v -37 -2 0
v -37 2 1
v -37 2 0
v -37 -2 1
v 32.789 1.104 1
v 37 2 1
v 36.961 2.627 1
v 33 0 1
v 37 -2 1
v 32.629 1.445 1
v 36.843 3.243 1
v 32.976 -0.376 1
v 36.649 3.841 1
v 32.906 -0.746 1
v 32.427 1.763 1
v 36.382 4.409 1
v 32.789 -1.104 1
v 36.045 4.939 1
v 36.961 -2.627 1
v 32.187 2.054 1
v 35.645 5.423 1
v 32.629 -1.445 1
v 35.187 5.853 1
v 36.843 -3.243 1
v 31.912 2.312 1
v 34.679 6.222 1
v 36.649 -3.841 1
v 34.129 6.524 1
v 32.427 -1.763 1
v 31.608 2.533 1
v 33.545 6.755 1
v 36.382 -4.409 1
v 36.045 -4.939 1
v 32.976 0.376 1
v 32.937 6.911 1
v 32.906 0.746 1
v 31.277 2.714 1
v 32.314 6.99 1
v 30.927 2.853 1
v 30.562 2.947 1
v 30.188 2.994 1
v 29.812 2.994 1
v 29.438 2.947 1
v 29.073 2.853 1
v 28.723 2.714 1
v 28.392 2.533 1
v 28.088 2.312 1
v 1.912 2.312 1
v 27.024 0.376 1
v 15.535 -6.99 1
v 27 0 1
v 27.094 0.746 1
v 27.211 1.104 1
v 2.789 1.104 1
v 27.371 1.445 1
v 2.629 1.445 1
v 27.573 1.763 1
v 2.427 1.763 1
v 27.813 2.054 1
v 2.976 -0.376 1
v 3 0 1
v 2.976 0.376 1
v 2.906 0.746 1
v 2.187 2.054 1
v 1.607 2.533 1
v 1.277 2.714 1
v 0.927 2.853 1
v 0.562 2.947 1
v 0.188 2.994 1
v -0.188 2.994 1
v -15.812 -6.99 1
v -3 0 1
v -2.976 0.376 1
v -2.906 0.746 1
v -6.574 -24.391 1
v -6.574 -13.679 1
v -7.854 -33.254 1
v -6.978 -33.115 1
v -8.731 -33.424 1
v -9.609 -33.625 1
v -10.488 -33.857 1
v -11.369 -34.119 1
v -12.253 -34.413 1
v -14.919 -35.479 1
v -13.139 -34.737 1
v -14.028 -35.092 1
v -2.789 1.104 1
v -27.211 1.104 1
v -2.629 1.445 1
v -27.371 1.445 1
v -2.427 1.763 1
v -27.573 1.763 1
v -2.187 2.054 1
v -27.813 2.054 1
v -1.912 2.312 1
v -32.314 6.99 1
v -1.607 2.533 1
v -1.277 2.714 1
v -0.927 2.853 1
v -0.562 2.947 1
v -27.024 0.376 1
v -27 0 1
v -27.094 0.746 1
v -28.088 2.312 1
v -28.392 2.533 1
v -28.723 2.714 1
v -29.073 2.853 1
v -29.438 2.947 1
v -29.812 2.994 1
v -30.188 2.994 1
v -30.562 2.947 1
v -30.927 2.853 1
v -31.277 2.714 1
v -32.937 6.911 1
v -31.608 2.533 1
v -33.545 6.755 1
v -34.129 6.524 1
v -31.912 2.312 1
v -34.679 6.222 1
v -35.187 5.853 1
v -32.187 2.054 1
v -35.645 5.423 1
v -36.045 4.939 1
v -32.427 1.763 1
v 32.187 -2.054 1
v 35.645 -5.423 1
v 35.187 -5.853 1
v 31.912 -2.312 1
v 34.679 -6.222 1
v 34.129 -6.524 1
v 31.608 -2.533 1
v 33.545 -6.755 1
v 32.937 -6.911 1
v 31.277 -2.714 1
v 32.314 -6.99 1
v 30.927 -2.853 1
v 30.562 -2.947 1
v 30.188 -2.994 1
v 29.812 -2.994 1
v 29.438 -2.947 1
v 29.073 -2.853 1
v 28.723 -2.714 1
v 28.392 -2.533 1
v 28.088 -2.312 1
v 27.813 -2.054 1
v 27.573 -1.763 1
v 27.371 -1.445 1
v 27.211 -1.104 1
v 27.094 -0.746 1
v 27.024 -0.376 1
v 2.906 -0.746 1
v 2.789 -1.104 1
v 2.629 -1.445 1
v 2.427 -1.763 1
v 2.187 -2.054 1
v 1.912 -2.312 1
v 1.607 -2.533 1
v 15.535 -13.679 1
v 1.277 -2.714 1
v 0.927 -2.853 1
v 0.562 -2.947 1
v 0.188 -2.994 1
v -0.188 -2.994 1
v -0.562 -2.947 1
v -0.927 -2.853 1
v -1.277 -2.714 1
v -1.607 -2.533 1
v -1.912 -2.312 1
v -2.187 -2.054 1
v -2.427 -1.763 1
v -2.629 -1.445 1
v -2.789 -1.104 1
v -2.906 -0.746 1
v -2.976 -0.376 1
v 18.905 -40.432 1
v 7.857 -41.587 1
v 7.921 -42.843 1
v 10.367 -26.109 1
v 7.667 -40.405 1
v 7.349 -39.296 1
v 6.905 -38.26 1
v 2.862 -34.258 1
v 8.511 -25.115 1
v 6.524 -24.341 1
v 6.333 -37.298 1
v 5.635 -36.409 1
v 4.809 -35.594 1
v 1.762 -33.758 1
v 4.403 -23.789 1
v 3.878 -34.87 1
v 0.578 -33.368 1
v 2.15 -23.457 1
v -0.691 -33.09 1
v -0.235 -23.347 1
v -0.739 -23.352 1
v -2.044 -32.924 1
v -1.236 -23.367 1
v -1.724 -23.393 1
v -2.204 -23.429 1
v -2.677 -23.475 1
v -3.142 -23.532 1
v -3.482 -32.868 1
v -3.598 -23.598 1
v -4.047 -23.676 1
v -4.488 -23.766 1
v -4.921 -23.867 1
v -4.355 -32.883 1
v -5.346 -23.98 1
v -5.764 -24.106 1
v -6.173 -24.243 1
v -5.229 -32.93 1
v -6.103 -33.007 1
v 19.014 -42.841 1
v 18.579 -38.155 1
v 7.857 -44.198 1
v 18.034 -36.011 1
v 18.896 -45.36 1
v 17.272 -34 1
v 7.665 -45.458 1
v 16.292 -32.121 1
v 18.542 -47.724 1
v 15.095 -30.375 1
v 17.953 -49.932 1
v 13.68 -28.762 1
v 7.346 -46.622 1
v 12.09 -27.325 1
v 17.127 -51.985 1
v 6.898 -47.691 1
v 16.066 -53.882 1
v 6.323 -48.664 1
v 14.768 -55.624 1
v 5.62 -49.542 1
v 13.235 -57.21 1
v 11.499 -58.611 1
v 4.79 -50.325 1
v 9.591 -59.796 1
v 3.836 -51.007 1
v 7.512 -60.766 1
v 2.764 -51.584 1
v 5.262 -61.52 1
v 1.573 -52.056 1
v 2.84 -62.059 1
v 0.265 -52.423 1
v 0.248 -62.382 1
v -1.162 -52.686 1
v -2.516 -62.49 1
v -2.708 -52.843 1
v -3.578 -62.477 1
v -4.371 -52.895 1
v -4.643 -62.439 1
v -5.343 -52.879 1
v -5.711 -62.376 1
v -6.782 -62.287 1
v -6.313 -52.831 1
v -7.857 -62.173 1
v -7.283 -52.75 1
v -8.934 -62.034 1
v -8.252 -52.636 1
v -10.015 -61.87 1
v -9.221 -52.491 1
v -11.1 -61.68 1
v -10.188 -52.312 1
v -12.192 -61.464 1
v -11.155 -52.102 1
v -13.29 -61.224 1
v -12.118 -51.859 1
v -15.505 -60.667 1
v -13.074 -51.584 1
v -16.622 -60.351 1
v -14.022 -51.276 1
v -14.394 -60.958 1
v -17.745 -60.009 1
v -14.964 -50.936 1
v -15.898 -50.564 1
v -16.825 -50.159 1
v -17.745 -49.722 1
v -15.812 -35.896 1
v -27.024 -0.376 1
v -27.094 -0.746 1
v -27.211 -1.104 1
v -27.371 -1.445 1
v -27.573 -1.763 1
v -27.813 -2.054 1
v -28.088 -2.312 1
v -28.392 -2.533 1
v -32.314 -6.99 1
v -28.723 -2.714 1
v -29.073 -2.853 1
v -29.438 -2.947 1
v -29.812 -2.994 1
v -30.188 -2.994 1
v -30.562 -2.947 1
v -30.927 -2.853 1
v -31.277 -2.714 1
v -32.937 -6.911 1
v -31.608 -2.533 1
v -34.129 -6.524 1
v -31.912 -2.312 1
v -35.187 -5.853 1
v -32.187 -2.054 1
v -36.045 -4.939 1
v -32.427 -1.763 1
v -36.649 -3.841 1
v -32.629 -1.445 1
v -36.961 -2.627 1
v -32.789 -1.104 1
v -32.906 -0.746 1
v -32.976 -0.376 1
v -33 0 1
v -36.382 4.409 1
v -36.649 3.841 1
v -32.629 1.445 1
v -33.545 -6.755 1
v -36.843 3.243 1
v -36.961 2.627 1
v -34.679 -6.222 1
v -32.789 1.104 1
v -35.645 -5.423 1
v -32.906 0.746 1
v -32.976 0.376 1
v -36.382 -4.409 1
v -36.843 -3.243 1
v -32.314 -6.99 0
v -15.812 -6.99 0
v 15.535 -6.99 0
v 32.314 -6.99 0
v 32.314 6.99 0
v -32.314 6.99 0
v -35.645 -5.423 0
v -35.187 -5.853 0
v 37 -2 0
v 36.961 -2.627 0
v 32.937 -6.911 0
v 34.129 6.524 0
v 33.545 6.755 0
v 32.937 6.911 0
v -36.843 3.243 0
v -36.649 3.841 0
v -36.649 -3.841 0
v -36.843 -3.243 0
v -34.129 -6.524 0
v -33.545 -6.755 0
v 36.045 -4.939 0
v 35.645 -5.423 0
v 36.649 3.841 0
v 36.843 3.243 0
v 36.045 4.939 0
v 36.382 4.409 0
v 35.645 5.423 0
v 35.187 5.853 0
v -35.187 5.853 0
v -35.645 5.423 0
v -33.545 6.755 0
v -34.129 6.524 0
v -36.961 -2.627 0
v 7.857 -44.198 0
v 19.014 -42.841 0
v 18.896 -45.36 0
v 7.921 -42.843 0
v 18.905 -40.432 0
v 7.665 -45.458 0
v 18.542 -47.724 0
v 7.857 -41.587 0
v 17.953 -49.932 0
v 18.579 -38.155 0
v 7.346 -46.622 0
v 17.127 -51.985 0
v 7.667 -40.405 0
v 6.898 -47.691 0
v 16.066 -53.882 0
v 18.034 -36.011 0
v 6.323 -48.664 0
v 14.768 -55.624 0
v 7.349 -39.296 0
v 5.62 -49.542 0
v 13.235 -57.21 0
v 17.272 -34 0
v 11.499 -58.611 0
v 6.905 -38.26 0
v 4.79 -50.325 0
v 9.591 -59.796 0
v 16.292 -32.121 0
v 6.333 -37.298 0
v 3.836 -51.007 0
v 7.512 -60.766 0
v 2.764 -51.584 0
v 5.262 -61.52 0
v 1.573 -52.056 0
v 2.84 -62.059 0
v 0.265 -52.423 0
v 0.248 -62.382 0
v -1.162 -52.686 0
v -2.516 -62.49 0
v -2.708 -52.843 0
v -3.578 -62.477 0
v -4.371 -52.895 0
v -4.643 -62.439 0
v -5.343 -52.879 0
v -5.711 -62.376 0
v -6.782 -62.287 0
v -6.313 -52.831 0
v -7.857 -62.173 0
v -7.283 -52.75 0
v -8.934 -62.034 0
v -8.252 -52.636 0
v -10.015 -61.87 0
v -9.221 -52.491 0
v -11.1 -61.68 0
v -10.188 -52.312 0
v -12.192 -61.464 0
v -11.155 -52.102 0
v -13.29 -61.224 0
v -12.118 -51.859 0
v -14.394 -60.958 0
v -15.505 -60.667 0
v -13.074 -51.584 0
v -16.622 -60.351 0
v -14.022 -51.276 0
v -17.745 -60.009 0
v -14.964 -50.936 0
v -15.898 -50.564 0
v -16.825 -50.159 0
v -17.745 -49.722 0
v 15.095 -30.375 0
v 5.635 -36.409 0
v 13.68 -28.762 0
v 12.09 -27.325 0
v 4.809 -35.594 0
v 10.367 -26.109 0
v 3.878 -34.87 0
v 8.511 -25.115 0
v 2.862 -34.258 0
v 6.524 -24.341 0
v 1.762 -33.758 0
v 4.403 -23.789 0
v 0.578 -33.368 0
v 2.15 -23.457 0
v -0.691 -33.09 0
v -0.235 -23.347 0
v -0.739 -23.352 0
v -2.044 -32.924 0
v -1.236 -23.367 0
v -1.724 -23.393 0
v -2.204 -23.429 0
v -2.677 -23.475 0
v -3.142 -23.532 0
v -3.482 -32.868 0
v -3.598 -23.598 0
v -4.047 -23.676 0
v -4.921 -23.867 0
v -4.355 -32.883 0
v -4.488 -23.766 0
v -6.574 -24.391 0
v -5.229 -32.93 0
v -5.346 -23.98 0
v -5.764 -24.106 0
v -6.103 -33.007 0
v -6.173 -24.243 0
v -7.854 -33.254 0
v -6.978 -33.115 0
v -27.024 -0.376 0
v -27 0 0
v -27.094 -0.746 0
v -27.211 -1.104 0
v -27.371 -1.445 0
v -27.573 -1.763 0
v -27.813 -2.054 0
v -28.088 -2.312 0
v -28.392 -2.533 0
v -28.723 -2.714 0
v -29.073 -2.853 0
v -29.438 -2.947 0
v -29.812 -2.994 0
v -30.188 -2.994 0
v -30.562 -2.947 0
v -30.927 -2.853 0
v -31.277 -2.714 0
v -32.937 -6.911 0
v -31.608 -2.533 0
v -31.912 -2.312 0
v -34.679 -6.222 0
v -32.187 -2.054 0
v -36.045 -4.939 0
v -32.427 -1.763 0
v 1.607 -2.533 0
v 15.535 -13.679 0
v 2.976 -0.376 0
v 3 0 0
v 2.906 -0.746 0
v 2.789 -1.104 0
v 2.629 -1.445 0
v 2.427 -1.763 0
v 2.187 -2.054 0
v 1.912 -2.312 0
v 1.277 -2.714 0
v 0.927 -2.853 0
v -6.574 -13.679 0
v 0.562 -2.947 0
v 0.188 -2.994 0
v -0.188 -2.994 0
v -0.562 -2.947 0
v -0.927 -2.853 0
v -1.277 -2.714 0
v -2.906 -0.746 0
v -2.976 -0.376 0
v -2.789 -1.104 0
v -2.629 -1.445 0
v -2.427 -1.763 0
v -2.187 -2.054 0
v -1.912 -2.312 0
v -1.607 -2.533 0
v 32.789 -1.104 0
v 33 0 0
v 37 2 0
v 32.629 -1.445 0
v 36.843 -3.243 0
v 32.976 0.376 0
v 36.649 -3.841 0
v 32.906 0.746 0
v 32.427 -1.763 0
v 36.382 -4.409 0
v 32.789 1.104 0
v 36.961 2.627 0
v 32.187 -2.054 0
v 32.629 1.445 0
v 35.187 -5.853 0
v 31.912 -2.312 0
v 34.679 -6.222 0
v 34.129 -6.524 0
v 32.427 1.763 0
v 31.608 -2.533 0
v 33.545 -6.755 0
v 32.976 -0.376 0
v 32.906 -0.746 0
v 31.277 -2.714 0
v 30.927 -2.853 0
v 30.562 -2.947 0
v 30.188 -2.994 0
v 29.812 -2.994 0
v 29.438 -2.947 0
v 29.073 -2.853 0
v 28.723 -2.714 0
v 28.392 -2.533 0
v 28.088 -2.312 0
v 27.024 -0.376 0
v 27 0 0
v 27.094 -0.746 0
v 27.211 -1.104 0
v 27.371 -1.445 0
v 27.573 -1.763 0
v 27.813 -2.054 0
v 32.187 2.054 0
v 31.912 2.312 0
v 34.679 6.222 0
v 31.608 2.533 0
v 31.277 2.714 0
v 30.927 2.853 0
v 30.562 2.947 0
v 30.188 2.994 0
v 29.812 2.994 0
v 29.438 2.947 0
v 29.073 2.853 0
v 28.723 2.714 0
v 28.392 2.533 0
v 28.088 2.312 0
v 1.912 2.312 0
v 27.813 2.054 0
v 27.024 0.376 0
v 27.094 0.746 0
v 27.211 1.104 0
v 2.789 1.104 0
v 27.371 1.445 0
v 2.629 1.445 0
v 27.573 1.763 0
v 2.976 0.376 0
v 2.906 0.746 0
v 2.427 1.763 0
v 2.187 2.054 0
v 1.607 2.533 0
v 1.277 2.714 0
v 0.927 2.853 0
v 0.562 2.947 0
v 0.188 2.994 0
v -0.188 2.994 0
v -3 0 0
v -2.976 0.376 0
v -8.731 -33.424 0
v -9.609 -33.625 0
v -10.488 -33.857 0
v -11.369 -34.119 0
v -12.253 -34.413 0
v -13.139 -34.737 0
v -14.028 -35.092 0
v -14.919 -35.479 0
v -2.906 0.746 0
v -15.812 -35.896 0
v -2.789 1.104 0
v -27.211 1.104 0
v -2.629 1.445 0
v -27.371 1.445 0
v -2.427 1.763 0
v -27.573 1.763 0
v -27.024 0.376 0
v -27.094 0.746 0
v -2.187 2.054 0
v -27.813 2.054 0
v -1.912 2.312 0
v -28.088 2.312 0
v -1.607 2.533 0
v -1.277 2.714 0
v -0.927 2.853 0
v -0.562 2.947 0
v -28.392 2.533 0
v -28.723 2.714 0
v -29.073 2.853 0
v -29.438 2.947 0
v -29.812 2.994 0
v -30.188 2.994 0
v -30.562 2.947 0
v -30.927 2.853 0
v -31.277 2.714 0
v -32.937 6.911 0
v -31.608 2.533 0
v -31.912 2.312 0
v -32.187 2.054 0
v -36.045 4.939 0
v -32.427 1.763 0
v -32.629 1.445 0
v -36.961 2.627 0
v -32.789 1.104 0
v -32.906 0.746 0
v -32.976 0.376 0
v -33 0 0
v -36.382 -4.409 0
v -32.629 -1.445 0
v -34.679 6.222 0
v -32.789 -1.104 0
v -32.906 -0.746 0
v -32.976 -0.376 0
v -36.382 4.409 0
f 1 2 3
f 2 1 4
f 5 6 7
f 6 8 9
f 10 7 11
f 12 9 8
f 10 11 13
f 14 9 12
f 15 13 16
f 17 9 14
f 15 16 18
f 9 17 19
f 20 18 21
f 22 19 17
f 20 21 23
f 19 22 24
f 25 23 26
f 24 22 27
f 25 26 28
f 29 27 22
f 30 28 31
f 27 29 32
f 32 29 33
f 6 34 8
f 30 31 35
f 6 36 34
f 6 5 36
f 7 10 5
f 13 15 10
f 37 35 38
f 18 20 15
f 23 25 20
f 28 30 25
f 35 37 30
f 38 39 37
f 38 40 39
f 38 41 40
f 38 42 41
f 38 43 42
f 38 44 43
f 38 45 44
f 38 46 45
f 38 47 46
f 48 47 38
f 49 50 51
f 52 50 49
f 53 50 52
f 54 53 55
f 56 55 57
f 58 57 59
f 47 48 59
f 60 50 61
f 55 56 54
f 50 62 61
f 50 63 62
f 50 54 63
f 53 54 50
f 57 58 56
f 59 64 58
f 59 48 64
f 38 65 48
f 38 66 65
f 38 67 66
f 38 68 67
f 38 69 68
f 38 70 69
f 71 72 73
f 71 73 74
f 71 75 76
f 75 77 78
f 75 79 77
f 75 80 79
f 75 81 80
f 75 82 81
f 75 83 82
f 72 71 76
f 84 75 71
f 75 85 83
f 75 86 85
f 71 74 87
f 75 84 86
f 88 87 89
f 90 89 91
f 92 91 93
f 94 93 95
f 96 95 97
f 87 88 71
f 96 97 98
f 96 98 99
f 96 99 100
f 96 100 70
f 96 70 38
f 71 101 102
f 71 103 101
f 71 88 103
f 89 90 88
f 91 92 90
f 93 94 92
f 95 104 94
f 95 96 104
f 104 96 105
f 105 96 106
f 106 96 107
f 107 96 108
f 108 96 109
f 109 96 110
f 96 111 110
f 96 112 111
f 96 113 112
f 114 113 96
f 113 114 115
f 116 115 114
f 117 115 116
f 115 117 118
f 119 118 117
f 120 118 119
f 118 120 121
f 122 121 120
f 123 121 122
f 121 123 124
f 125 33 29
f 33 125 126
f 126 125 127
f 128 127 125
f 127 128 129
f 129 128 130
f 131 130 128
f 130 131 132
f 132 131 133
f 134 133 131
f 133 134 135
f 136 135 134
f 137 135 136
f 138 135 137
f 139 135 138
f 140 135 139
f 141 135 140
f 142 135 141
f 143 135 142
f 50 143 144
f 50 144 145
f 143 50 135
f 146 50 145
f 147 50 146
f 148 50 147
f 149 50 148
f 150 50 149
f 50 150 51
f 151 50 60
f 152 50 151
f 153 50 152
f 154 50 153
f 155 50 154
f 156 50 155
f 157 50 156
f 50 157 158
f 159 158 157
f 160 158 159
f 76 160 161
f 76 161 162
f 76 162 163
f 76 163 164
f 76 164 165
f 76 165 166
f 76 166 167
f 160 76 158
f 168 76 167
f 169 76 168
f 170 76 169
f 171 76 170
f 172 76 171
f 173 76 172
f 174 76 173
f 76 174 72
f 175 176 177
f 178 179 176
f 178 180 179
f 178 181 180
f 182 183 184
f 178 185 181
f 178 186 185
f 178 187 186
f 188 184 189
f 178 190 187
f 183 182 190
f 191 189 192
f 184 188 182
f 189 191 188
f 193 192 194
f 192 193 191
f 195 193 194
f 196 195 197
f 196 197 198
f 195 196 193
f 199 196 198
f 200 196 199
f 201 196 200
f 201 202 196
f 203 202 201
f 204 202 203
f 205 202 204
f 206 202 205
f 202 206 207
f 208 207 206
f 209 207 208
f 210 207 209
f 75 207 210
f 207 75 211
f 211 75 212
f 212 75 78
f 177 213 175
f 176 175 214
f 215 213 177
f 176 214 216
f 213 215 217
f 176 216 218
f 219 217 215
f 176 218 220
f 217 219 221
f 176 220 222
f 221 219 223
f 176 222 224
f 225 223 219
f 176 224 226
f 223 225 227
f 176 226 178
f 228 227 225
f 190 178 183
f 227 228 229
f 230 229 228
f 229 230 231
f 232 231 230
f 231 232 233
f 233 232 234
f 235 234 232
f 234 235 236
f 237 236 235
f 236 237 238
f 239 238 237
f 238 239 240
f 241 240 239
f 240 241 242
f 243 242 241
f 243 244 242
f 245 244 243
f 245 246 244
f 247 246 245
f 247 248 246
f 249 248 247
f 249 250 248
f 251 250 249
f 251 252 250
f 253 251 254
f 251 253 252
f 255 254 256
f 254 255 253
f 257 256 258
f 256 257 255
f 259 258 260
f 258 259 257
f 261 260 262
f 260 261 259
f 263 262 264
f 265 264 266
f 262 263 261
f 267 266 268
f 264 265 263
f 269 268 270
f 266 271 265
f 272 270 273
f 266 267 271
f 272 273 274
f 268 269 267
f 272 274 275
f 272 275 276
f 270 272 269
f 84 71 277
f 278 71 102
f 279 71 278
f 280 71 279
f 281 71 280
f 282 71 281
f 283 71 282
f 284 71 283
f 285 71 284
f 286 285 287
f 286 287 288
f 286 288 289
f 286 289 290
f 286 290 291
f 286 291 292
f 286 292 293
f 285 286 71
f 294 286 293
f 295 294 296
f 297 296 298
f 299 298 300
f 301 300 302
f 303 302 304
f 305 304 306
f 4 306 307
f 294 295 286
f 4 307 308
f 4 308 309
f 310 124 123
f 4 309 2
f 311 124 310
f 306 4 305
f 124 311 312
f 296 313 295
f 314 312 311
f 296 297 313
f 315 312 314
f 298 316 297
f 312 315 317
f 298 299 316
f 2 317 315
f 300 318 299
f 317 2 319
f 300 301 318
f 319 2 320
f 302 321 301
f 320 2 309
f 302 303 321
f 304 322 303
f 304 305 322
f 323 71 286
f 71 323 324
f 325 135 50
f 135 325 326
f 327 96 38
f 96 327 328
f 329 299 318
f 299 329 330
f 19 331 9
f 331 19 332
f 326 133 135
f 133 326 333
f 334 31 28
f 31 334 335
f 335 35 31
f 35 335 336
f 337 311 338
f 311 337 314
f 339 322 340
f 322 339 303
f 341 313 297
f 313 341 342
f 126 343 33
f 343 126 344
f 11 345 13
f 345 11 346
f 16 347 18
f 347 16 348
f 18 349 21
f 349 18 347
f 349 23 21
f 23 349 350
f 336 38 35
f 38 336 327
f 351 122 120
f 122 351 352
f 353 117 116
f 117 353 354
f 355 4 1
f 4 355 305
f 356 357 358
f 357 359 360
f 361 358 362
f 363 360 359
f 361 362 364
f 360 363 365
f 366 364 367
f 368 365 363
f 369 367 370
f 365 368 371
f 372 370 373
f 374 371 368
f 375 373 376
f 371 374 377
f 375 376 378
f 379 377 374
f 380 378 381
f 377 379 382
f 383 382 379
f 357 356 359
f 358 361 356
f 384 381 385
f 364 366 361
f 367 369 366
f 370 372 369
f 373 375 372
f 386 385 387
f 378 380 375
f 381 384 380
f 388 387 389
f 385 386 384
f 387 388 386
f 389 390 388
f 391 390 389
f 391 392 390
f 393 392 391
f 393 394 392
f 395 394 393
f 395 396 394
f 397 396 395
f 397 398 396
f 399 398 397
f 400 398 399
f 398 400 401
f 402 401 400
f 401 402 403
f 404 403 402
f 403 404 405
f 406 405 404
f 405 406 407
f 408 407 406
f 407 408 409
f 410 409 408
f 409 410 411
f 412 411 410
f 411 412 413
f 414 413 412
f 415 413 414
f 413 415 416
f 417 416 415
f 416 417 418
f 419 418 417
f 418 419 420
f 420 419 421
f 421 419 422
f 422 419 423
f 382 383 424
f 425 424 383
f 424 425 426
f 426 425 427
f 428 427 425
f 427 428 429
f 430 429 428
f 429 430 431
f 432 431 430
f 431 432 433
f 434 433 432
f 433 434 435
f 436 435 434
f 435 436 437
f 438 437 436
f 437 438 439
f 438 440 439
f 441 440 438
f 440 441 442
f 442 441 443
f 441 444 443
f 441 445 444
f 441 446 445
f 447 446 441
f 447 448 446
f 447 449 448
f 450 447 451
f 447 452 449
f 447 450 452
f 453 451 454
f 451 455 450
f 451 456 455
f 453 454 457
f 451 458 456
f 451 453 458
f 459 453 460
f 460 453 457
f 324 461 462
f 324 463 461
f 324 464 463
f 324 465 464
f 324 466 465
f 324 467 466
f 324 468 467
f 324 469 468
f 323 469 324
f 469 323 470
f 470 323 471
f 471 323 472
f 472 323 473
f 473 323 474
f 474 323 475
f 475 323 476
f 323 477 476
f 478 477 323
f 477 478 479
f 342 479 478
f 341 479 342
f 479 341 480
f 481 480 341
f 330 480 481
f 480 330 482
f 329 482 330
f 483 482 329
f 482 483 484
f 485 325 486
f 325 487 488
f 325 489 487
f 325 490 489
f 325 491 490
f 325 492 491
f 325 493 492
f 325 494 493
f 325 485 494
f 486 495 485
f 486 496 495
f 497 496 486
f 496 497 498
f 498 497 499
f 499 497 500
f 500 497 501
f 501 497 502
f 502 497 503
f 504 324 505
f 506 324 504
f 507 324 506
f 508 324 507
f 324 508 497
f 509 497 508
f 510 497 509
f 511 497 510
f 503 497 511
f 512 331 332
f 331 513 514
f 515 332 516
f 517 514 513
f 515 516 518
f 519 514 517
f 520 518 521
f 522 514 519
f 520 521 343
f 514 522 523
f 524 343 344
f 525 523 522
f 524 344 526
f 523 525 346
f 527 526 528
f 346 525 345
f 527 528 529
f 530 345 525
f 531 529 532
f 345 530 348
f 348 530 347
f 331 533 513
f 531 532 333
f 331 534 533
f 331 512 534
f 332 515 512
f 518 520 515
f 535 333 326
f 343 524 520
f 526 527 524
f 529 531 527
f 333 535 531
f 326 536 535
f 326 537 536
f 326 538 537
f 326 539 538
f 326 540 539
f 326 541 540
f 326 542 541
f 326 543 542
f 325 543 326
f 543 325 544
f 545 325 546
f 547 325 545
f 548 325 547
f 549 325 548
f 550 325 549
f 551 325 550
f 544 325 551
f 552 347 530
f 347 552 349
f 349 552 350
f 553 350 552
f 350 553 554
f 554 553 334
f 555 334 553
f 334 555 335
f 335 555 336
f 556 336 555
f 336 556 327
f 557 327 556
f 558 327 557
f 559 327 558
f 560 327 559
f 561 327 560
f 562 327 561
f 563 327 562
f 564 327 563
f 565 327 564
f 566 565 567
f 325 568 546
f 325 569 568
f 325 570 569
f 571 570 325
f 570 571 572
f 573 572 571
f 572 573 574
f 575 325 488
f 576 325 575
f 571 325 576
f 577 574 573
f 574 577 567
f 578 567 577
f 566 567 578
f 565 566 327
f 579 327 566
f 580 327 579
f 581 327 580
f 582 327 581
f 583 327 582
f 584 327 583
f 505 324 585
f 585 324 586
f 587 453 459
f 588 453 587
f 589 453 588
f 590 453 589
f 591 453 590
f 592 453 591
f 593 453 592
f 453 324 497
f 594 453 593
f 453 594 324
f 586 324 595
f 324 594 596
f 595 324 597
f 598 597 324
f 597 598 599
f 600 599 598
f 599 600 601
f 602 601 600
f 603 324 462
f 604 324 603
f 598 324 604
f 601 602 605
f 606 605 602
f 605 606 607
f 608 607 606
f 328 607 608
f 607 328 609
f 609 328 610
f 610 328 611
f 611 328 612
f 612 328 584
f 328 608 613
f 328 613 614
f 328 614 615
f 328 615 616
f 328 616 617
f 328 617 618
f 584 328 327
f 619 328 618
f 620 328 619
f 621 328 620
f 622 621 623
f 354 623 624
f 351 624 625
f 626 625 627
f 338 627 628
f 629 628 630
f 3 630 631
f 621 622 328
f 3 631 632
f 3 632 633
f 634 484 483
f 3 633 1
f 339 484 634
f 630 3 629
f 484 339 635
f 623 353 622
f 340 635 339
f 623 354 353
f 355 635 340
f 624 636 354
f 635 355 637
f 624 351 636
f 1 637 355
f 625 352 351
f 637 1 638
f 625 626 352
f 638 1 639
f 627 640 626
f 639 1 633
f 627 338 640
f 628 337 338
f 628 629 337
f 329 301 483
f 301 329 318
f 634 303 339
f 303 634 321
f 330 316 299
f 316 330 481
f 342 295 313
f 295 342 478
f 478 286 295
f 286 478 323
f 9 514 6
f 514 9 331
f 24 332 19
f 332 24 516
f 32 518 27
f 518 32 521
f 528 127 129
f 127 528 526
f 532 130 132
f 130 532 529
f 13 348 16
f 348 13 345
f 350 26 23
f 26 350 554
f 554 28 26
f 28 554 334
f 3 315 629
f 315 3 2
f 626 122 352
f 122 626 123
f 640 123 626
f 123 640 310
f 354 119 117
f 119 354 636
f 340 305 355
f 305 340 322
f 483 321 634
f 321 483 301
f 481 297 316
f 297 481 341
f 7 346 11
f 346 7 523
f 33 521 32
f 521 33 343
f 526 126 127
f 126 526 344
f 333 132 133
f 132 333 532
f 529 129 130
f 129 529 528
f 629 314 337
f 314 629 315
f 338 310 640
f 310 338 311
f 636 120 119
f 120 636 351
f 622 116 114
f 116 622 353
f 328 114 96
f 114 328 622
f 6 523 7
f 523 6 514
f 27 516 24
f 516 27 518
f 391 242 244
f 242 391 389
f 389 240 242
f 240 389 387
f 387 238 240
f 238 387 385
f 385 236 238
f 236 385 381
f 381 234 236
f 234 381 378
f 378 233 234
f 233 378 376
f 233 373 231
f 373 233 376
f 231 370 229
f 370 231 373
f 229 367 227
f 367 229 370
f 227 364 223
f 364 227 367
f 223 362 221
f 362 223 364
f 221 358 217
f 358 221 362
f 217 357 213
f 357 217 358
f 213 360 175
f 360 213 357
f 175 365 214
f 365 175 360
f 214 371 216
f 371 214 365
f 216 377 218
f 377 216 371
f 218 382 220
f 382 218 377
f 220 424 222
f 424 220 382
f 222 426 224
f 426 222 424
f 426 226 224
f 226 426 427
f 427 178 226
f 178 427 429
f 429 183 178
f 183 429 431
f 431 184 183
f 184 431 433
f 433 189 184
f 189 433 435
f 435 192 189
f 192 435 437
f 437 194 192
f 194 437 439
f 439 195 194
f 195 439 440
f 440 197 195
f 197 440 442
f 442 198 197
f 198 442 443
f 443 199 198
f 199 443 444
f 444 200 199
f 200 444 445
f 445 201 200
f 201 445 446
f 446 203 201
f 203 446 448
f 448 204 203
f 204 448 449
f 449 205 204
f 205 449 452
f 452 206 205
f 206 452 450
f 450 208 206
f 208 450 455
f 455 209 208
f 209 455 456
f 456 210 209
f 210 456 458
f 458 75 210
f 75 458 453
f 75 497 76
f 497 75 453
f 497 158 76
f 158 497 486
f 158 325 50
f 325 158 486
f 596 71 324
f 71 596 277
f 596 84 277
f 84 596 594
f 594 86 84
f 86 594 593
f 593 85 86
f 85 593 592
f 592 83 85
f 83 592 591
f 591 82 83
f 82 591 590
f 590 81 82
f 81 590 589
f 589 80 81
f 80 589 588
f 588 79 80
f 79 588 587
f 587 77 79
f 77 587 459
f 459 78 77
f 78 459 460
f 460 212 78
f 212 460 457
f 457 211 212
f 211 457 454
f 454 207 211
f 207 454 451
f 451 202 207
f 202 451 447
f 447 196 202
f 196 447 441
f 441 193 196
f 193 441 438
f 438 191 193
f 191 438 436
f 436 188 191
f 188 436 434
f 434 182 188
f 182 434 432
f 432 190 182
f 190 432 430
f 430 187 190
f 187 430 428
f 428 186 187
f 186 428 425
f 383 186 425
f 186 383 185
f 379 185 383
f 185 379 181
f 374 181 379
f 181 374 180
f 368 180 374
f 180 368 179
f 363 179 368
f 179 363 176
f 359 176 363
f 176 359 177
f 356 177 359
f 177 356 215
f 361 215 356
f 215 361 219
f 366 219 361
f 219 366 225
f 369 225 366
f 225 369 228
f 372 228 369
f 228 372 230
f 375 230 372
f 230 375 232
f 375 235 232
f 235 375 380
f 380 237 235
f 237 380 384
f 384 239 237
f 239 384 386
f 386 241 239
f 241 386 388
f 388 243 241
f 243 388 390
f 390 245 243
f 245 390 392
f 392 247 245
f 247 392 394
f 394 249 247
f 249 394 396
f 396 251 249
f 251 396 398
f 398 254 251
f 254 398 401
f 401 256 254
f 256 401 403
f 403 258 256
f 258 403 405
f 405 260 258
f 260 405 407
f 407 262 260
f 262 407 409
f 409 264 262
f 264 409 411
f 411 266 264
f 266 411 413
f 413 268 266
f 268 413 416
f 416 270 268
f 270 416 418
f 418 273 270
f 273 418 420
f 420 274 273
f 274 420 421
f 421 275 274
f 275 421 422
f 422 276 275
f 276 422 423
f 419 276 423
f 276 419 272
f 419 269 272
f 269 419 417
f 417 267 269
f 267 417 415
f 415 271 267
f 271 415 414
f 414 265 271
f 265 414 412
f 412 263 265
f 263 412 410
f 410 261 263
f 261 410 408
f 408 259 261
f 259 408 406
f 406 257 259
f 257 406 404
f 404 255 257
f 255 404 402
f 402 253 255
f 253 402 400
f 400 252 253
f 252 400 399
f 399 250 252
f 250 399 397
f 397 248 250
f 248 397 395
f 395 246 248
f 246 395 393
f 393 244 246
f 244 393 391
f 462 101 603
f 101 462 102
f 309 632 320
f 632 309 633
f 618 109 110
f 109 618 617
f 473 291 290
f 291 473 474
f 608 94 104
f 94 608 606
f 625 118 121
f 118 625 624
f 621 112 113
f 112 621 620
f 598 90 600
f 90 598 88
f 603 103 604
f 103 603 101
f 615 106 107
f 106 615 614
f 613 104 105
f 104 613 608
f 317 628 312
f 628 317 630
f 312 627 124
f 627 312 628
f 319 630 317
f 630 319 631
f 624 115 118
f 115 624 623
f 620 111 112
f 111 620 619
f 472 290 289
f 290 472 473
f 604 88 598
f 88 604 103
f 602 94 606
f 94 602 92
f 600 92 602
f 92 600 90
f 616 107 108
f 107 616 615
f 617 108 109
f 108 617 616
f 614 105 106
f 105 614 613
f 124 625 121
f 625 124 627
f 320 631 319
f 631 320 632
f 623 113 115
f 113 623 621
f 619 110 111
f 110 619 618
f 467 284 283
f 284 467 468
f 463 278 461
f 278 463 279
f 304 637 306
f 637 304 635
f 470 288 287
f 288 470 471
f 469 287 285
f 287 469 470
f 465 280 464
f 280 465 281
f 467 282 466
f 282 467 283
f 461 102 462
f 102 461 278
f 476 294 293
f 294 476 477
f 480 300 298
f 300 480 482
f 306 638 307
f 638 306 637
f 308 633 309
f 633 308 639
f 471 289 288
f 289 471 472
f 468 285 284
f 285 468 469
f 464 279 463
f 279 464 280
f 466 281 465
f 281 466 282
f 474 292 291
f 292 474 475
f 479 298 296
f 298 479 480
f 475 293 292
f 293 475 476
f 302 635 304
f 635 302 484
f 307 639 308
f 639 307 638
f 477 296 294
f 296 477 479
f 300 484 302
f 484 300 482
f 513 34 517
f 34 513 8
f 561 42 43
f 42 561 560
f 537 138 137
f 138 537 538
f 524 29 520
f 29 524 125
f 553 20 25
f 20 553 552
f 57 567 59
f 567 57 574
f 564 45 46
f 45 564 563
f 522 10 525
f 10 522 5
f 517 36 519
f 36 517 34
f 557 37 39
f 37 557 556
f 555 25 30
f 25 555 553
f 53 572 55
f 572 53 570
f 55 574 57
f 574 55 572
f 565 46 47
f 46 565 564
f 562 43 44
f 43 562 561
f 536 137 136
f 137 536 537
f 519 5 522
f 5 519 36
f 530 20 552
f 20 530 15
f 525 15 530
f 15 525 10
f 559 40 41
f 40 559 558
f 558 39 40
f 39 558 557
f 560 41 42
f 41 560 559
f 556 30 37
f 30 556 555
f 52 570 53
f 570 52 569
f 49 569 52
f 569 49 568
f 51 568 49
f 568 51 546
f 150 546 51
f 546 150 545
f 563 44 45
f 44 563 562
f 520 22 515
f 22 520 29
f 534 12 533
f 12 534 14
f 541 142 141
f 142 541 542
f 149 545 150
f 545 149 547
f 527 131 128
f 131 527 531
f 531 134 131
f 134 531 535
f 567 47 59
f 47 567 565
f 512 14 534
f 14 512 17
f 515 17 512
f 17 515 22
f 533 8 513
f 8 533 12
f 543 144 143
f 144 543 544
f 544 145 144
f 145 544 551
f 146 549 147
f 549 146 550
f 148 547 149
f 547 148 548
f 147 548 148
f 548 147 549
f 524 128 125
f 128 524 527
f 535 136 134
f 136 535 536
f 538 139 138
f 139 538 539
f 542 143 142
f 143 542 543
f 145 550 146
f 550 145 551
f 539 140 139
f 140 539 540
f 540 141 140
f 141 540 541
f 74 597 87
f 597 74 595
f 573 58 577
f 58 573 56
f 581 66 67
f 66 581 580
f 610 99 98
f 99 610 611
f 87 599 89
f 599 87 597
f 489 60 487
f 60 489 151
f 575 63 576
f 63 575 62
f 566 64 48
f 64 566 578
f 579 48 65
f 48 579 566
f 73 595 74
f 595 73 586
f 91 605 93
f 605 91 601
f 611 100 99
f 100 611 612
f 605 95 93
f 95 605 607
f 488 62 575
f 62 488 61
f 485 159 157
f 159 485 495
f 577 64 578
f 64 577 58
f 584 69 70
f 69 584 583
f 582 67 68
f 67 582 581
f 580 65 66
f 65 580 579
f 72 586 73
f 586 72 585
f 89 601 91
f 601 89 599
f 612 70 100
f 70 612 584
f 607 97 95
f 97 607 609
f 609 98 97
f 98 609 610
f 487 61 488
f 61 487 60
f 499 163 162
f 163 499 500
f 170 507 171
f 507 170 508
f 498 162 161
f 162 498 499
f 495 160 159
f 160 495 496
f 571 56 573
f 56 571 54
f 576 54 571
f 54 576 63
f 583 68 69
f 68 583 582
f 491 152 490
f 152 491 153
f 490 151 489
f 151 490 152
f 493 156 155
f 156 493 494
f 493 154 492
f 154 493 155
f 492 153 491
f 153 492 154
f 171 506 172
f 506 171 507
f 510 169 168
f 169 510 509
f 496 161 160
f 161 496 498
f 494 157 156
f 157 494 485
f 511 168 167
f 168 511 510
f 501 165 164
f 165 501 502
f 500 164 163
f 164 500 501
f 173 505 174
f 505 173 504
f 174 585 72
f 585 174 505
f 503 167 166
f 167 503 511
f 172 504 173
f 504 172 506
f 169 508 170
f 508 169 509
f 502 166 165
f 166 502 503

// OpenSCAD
$fn = 50;


difference() {
	union() {
		translate(v = [0, 0, 0]) {
			rotate(a = [0, 0, 0]) {
				hull() {
					translate(v = [-32.0000000000, 2.0000000000, 0]) {
						rotate(a = [0, 0, 0]) {
							translate(v = [0, 0, 0]) {
								rotate(a = [0, 0, 0]) {
									cylinder(h = 1, r = 5);
								}
							}
						}
					}
					translate(v = [32.0000000000, 2.0000000000, 0]) {
						rotate(a = [0, 0, 0]) {
							translate(v = [0, 0, 0]) {
								rotate(a = [0, 0, 0]) {
									cylinder(h = 1, r = 5);
								}
							}
						}
					}
					translate(v = [-32.0000000000, -2.0000000000, 0]) {
						rotate(a = [0, 0, 0]) {
							translate(v = [0, 0, 0]) {
								rotate(a = [0, 0, 0]) {
									cylinder(h = 1, r = 5);
								}
							}
						}
					}
					translate(v = [32.0000000000, -2.0000000000, 0]) {
						rotate(a = [0, 0, 0]) {
							translate(v = [0, 0, 0]) {
								rotate(a = [0, 0, 0]) {
									cylinder(h = 1, r = 5);
								}
							}
						}
					}
				}
			}
		}
		translate(v = [0, -5, 0]) {
			rotate(a = [0, 0, 0]) {
				linear_extrude(height = 1) {
					text(font = "DejaVu Sans Mono:style=Bold", halign = "center", size = 57.0000000000, text = "5", valign = "top");
				}
			}
		}
	}
	union() {
		translate(v = [-30.0000000000, 0.0000000000, -125.0000000000]) {
			rotate(a = [0, 0, 0]) {
				cylinder(h = 250, r = 3.0000000000);
			}
		}
		translate(v = [30.0000000000, 0.0000000000, -125.0000000000]) {
			rotate(a = [0, 0, 0]) {
				cylinder(h = 250, r = 3.0000000000);
			}
		}
		translate(v = [30.0000000000, 0.0000000000, -125.0000000000]) {
			rotate(a = [0, 0, 0]) {
				cylinder(h = 250, r = 3.0000000000);
			}
		}
		translate(v = [0, 0, -125.0000000000]) {
			rotate(a = [0, 0, 0]) {
				cylinder(h = 250, r = 3.0000000000);
			}
		}
	}
}
